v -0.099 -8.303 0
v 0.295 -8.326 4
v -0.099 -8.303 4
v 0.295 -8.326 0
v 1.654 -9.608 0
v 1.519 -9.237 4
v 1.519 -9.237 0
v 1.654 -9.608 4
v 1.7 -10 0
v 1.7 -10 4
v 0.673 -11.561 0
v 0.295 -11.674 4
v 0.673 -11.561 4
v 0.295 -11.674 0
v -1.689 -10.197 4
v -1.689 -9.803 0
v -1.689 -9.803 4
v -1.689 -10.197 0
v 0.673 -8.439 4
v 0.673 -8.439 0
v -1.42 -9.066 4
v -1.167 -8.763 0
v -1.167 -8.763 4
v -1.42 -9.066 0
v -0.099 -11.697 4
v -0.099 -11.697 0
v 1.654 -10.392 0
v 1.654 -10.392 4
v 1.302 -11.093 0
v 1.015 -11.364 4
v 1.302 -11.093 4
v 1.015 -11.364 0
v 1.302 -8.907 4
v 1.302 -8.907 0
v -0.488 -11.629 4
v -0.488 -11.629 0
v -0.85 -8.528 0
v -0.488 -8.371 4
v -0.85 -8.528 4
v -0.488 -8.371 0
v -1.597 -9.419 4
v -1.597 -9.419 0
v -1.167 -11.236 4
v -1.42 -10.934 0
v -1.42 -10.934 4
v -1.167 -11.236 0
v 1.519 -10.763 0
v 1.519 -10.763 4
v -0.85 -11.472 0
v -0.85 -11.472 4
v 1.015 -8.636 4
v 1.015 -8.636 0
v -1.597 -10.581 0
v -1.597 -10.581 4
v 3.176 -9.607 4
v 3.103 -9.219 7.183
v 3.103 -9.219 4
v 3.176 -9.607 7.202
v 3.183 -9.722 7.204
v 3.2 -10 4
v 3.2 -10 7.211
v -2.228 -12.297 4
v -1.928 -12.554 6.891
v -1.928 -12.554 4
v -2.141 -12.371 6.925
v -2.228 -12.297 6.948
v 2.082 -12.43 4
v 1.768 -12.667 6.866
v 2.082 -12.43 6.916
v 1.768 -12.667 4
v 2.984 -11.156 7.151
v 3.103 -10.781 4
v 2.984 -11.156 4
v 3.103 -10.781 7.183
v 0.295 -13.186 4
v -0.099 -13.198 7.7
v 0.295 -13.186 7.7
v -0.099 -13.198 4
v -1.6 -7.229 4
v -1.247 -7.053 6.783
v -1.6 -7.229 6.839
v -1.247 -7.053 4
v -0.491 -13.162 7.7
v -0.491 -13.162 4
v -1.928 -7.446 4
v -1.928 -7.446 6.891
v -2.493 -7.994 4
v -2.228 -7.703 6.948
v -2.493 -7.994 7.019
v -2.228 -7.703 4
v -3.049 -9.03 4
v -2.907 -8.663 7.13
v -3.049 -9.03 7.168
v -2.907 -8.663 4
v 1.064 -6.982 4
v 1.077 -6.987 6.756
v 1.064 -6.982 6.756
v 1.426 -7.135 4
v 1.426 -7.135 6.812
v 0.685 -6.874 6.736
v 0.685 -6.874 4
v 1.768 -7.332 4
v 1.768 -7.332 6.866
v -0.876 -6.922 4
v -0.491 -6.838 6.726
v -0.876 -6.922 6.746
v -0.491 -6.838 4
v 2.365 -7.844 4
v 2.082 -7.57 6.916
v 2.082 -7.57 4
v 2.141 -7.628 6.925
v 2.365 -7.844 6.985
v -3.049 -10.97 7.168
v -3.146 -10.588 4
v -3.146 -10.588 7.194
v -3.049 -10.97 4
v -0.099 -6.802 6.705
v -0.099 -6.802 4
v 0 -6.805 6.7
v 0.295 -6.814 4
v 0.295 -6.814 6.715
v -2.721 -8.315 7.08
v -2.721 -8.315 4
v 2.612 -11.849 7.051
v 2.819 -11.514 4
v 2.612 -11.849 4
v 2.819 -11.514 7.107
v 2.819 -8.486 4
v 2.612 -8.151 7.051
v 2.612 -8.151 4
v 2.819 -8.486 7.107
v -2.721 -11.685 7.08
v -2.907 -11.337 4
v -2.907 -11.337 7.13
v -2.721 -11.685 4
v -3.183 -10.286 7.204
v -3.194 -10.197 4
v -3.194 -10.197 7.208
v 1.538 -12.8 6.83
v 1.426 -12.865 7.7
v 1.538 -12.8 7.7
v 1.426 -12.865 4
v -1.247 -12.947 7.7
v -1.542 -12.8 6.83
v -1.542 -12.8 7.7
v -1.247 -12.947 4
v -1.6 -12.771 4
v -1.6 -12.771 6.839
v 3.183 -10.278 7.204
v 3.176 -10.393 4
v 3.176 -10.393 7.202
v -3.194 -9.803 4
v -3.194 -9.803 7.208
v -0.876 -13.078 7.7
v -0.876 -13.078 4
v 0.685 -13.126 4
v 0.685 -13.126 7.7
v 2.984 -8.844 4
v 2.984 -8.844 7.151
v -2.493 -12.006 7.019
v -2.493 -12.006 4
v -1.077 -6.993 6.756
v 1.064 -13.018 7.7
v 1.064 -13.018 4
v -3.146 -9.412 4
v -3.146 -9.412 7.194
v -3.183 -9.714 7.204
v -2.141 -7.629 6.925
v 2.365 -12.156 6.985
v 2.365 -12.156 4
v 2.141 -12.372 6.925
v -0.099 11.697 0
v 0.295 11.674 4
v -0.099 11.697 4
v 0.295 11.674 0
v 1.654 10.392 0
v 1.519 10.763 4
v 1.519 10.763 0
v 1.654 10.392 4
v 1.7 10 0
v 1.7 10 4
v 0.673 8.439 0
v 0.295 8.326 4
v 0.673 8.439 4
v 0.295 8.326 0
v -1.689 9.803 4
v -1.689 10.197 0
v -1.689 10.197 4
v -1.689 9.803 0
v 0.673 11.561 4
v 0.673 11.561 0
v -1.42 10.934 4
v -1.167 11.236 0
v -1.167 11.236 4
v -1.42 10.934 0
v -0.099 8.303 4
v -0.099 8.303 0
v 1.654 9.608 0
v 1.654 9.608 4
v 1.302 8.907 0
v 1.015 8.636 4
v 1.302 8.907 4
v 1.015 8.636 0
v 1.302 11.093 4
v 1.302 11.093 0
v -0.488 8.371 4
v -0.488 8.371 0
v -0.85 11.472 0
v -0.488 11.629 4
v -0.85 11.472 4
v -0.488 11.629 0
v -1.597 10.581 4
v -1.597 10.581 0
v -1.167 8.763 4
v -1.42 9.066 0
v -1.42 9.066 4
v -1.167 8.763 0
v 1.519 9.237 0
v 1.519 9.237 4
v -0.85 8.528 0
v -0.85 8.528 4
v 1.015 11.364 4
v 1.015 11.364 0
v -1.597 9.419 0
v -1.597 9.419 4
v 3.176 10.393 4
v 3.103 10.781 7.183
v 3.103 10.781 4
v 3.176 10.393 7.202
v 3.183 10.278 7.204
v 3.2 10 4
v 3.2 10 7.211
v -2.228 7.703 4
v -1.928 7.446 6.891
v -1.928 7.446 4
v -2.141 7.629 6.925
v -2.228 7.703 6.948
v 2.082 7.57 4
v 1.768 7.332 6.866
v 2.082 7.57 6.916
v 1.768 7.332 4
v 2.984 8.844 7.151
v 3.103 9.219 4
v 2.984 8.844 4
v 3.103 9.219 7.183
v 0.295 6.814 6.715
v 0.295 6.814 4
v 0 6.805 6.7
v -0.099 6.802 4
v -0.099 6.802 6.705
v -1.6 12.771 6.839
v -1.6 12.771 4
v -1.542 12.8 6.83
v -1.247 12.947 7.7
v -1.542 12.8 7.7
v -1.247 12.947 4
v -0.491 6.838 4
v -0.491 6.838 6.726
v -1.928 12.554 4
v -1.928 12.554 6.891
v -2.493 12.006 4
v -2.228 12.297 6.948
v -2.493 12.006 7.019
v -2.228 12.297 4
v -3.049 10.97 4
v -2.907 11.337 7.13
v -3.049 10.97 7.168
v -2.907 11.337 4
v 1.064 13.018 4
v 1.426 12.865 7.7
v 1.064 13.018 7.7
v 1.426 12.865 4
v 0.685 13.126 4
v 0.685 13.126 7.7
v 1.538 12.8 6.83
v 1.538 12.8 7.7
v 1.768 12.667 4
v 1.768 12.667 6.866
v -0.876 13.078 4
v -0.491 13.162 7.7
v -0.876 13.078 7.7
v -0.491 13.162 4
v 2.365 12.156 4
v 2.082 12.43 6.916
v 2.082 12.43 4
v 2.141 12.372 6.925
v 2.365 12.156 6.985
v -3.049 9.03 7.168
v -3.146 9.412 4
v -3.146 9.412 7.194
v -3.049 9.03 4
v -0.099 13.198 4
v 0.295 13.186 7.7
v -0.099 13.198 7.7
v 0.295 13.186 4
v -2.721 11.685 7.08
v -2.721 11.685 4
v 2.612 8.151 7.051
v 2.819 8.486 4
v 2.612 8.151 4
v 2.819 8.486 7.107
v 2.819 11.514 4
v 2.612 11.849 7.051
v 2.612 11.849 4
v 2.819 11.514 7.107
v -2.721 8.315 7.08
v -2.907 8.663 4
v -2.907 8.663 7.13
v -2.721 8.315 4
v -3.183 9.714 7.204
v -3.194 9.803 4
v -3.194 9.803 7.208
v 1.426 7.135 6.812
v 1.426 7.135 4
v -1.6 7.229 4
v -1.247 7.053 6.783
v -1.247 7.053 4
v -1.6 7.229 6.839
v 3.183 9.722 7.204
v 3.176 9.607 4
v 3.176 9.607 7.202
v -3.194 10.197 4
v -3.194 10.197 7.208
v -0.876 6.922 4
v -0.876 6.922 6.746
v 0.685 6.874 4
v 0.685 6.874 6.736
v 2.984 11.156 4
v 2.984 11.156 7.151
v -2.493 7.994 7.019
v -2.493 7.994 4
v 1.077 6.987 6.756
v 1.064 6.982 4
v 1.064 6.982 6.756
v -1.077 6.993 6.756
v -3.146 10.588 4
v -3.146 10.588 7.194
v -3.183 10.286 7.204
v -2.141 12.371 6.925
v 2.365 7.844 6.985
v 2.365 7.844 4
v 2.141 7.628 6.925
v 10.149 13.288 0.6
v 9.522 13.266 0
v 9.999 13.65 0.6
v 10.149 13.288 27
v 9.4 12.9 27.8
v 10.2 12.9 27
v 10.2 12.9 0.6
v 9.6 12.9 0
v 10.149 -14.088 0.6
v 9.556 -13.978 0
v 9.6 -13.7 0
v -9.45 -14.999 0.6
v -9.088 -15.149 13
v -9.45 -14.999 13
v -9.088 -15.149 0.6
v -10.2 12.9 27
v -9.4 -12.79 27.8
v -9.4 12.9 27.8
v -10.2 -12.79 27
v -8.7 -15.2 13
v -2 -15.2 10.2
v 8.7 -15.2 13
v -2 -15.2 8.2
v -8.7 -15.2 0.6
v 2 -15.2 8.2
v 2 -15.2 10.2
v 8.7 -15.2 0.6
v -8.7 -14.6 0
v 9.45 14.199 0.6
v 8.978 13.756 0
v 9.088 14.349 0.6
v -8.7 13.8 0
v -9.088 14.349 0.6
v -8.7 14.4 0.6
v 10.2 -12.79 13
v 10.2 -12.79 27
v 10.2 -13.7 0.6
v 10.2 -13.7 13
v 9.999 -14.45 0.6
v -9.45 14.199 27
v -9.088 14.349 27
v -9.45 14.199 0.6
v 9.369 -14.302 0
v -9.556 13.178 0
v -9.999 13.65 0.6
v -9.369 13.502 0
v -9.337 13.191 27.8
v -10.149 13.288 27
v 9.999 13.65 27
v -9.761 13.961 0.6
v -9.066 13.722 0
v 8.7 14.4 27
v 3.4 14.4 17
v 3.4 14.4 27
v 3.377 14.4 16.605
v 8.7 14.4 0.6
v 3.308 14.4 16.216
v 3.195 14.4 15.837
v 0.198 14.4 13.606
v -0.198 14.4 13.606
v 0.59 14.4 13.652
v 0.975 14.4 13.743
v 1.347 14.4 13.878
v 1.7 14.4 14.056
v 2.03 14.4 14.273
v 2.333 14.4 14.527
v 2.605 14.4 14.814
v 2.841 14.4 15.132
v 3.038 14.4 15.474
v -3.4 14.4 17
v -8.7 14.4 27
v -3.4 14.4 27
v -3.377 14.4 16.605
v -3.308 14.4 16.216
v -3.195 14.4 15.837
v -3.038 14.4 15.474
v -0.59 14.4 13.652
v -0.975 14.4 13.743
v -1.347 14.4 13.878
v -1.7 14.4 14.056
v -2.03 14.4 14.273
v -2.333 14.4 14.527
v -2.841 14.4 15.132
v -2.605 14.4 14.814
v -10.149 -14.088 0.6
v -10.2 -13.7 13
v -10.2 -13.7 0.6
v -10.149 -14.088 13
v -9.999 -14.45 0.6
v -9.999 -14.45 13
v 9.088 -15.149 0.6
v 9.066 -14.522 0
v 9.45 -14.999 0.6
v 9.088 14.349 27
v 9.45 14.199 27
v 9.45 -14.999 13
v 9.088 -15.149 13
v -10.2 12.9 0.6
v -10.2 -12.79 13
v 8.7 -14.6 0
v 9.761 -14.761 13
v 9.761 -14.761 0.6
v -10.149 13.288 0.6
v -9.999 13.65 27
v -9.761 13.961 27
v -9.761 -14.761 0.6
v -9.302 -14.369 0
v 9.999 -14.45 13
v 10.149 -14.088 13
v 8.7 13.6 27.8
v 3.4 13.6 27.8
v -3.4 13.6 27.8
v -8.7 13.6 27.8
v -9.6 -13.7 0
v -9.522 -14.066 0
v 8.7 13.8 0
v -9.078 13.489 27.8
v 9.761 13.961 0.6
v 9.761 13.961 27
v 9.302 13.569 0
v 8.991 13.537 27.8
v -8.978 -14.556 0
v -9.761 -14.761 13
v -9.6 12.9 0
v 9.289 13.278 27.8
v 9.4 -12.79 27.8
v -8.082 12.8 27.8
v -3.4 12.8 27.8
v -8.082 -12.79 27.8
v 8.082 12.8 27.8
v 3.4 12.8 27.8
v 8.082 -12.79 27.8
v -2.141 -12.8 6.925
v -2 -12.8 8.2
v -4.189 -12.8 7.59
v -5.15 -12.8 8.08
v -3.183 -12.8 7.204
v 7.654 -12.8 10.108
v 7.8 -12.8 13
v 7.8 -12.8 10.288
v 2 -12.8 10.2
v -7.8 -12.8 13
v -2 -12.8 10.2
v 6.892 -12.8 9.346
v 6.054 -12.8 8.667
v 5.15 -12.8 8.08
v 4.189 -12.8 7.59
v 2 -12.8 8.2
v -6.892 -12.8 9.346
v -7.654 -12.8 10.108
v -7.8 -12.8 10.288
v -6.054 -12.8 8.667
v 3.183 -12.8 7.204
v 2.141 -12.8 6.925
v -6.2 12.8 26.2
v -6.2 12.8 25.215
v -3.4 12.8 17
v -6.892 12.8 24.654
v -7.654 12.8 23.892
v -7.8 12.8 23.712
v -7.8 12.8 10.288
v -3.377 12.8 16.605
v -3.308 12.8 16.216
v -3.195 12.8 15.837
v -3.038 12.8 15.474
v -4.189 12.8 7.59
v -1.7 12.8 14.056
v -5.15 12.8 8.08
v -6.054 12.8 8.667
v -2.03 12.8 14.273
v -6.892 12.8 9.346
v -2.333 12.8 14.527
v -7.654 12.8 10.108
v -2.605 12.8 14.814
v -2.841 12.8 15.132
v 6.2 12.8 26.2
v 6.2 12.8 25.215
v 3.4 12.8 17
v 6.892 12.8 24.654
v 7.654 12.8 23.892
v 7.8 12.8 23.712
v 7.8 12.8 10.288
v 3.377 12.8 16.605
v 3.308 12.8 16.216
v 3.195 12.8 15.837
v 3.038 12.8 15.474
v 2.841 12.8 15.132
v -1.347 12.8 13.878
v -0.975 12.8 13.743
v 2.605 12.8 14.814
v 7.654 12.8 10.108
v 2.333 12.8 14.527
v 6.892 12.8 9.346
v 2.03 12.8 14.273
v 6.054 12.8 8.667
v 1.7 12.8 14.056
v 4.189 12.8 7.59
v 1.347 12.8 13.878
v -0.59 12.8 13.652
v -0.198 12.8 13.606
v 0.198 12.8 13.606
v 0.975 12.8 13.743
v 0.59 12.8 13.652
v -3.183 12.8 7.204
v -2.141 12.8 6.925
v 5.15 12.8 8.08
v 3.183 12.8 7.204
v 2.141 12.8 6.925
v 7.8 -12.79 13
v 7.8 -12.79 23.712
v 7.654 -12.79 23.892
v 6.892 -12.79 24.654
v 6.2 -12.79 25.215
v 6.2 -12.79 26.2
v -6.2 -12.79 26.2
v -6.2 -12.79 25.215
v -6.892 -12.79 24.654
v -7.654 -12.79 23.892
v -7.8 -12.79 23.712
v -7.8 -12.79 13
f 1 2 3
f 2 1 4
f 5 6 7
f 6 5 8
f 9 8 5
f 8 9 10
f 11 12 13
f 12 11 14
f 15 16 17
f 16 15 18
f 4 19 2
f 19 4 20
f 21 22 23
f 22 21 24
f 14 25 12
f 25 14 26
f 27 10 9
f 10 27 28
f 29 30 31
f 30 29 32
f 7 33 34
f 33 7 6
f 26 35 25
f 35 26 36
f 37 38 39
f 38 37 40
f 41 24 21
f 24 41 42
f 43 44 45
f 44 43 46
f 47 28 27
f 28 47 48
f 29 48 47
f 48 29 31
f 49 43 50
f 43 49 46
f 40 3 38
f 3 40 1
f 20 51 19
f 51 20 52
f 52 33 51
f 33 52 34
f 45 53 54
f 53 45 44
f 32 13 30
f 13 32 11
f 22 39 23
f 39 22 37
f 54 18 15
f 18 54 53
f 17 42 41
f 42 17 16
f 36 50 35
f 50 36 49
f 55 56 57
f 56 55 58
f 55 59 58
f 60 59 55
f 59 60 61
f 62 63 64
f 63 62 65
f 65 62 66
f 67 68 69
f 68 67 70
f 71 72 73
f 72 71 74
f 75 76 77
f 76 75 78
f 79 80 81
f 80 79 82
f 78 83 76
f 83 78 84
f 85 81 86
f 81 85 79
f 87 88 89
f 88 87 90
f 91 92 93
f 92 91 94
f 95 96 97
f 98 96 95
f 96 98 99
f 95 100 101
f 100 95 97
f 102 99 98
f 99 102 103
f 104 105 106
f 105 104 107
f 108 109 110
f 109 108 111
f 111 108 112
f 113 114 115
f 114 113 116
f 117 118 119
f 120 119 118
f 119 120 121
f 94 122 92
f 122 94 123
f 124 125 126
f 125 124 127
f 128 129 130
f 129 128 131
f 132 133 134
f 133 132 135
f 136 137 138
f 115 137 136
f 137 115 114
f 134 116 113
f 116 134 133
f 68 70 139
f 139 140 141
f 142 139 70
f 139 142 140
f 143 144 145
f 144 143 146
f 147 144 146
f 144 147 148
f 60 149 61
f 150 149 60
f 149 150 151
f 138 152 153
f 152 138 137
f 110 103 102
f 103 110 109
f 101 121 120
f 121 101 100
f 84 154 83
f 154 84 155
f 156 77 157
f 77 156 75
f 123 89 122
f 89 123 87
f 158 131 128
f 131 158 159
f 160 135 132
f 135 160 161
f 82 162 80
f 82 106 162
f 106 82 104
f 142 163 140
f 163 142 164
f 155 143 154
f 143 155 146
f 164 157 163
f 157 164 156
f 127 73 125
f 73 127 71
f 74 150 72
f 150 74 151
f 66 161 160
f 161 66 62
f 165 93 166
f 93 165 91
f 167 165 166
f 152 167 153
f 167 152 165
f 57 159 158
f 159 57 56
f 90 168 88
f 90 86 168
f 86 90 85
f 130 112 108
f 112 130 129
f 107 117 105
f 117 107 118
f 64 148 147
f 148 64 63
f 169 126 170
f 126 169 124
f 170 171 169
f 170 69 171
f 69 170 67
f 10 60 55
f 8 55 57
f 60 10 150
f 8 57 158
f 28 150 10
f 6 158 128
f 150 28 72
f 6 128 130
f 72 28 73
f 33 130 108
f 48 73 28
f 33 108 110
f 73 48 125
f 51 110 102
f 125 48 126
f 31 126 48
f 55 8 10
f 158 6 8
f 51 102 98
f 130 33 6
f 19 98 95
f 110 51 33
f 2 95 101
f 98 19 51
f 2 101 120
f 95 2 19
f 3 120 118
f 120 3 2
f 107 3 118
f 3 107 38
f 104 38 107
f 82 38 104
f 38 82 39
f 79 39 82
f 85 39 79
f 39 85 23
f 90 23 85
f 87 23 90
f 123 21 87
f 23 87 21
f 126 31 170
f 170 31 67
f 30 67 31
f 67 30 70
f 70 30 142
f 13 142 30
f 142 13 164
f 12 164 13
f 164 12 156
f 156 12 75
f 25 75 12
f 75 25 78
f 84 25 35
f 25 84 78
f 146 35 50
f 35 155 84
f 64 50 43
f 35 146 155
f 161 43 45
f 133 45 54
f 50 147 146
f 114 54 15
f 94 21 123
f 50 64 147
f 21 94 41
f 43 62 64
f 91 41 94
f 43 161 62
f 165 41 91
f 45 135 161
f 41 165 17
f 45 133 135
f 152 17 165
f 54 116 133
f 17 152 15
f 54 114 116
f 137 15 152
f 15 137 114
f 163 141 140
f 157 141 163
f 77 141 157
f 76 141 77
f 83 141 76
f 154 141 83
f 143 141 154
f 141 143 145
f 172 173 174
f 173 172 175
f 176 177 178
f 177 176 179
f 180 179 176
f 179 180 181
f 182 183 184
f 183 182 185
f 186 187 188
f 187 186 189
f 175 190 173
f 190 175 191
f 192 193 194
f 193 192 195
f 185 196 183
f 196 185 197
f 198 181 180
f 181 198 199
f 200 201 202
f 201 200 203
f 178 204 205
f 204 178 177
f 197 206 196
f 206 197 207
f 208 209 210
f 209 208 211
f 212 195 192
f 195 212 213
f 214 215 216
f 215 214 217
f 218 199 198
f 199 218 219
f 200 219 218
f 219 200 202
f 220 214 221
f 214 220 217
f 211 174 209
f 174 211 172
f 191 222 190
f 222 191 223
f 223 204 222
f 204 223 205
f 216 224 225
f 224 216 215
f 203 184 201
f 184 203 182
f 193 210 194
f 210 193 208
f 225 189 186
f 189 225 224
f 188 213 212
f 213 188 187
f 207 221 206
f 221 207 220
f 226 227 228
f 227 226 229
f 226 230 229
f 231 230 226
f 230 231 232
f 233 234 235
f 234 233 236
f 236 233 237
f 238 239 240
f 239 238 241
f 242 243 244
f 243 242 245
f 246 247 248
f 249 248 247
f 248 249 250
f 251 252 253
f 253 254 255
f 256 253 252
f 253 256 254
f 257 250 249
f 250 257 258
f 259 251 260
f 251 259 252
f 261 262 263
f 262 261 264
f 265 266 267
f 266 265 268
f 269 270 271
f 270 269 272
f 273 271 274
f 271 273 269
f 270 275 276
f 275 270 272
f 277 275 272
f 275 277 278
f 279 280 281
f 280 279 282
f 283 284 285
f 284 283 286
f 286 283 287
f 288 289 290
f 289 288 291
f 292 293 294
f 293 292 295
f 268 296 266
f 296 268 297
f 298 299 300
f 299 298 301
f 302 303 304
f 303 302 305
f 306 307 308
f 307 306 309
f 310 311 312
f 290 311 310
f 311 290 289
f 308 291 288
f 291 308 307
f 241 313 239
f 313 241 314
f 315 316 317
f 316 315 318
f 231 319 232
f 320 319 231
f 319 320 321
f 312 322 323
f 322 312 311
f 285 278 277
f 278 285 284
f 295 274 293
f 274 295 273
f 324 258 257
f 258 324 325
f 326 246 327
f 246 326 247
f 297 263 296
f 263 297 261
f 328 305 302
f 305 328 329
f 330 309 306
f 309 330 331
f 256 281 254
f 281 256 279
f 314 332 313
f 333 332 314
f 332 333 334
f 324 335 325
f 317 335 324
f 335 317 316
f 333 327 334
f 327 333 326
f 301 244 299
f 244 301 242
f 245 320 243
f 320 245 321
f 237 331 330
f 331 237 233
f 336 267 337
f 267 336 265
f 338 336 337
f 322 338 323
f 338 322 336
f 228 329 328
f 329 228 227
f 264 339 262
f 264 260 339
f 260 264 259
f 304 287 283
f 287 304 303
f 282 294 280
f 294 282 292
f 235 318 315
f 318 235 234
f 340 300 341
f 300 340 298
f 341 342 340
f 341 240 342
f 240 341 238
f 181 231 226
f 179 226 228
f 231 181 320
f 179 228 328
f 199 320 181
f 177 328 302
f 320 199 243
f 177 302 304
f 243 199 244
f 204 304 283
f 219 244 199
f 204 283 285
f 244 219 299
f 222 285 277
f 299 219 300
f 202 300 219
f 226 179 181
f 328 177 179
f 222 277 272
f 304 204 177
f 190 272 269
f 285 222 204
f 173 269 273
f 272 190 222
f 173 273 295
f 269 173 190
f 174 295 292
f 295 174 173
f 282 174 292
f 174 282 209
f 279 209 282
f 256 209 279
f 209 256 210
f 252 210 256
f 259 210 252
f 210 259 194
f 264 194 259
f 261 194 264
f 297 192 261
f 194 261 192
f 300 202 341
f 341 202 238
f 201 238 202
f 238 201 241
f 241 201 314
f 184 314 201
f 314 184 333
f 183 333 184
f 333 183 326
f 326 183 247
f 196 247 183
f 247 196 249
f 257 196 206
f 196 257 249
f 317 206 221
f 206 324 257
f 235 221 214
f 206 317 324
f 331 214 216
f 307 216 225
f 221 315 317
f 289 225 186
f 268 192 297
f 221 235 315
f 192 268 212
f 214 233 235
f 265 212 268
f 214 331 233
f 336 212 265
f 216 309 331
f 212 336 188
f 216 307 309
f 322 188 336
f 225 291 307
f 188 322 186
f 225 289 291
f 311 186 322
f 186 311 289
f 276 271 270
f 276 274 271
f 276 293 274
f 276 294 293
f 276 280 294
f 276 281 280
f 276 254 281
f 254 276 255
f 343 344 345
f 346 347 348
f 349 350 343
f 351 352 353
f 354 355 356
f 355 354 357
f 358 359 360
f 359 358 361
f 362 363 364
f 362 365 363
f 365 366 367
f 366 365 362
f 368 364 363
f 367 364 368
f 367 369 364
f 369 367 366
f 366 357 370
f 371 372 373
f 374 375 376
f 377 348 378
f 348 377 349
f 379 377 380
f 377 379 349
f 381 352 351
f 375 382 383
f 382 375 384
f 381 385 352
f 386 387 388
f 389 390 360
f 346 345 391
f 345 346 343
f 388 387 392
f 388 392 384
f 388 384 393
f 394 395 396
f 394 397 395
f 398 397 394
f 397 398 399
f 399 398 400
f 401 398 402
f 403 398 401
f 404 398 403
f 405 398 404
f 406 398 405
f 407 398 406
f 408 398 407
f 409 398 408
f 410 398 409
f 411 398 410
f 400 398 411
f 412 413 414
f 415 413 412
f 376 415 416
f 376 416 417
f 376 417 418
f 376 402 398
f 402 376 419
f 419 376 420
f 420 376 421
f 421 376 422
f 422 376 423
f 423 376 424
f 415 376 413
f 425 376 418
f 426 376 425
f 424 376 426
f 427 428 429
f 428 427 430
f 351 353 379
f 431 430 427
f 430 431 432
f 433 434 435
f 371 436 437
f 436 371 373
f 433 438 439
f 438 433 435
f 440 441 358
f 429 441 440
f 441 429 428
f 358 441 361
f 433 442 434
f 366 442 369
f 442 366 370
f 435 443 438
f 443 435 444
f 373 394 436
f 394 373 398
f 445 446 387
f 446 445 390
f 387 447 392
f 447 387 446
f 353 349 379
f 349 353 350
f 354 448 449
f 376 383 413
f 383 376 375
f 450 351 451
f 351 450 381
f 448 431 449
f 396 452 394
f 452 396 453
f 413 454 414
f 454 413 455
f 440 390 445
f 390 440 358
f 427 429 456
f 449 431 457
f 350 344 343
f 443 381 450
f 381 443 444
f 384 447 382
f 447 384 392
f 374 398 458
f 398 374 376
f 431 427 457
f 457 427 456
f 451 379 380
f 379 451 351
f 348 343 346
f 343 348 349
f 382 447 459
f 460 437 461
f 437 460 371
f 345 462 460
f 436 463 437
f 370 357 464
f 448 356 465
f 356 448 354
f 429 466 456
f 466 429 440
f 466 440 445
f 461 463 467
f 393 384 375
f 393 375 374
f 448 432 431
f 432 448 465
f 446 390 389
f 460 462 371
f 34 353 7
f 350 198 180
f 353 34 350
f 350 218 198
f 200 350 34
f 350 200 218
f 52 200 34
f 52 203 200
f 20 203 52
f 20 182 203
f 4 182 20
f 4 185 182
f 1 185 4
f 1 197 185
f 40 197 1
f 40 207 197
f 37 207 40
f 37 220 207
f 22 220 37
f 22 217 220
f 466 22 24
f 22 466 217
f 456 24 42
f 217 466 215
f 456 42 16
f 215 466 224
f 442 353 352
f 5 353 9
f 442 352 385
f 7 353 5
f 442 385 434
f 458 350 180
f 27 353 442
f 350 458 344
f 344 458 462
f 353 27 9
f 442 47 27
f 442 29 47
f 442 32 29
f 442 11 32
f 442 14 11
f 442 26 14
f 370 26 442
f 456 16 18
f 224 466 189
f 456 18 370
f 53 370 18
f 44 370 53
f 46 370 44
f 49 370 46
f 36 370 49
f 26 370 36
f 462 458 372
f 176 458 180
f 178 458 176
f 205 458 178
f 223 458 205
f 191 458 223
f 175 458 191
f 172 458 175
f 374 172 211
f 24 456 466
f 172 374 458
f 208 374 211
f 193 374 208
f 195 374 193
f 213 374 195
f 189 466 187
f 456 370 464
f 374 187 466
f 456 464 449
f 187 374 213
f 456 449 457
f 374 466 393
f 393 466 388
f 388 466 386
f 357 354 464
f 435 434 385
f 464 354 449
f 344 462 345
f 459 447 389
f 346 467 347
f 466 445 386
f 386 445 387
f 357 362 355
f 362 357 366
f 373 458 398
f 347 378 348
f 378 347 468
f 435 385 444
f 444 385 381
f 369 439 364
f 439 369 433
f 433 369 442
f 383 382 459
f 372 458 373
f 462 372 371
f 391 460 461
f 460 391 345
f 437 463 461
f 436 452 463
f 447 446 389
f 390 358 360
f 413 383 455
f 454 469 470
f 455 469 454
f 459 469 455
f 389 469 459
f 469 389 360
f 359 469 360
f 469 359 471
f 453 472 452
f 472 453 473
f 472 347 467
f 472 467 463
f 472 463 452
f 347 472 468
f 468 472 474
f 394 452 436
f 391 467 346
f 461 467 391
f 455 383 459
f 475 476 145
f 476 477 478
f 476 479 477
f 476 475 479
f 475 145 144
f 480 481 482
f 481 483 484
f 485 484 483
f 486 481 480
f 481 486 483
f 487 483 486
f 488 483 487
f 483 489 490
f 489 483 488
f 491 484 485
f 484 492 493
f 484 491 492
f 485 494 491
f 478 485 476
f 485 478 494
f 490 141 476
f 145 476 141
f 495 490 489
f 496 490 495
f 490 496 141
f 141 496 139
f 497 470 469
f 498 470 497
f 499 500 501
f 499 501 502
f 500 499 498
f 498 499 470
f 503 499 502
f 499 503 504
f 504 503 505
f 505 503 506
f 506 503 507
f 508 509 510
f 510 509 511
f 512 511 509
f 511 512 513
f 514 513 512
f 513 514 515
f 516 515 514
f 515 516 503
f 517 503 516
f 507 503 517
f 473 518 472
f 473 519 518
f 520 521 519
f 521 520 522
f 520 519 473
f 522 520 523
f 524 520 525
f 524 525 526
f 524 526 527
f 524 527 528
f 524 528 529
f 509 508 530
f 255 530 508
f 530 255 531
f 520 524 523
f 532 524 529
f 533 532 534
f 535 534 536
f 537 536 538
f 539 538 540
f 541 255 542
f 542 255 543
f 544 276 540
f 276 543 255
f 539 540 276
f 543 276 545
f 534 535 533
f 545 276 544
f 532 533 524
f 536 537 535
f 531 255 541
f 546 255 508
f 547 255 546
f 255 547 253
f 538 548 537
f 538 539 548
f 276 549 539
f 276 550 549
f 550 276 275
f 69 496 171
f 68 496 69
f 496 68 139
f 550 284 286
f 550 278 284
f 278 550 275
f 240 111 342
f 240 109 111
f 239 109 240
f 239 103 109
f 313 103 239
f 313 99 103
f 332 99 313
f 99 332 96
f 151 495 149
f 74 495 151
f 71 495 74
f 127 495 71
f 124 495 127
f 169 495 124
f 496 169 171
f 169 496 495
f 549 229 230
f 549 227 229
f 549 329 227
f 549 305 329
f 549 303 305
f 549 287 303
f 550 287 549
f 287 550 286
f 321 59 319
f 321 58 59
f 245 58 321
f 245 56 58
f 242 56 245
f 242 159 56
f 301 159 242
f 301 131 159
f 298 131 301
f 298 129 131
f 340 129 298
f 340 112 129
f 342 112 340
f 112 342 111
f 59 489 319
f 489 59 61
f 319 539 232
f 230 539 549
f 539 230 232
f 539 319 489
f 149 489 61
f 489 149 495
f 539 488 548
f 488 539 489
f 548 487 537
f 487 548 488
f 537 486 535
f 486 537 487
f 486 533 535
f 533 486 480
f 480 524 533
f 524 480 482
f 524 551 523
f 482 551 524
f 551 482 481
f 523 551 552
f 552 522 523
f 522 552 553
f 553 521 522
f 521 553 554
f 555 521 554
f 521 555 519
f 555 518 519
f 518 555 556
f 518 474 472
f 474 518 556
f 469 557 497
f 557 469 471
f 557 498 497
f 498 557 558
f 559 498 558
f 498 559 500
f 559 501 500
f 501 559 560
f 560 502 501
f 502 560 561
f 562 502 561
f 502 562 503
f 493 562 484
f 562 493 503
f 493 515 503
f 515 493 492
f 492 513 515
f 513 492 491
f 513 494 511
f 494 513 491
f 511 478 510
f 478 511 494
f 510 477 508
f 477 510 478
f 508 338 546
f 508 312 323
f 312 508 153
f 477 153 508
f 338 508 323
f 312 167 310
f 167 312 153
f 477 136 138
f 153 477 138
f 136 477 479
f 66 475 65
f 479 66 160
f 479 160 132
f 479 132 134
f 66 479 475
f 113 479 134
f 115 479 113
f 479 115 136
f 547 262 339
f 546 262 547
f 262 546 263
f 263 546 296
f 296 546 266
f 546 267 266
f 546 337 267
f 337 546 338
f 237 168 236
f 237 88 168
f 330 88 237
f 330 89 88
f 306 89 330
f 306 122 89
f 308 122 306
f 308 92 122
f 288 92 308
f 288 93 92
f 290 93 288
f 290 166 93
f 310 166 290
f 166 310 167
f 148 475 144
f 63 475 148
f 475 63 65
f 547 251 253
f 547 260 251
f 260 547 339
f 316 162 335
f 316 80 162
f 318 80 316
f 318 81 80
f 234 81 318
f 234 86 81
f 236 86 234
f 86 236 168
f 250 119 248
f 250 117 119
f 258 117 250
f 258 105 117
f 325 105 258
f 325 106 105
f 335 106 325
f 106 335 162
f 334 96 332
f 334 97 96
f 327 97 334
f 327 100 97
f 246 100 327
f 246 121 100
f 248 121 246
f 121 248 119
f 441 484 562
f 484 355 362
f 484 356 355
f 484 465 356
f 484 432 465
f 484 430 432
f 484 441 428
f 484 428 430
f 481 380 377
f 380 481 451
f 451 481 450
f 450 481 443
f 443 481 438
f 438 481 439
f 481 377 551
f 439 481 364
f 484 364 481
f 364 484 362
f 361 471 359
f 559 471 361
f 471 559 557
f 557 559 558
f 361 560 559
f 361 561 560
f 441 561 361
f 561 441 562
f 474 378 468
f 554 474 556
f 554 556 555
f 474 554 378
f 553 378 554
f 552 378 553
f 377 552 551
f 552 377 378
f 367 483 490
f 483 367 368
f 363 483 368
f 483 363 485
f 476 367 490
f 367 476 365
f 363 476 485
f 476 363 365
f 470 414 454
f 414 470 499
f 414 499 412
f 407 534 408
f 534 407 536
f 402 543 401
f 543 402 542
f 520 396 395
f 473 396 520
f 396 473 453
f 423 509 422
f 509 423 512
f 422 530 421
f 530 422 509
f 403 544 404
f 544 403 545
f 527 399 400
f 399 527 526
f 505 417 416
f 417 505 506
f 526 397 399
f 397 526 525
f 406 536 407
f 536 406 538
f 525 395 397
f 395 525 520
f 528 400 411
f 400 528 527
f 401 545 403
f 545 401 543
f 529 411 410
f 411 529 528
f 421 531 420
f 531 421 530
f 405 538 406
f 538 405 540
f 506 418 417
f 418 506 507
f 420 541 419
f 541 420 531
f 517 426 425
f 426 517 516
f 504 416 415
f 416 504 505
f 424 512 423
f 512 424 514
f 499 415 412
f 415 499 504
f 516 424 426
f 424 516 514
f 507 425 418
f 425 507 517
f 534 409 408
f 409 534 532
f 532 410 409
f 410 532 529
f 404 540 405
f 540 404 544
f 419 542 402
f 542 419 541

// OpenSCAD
// file: ../stem_core.scad
// =====================================================================
//  stem_core.scad — shared geometry helpers for every STEM_KIT part.
// =====================================================================
include <../PARAMETERS/config.scad>
// =====================================================================

// ---------- rounded / chamfered prisms --------------------------------

// Rounded rectangle (2D), centred.
module rrect(size, r) {
    rr = min(r, min(size[0], size[1]) / 2 - 0.01);
    offset(r = rr) square([size[0] - 2 * rr, size[1] - 2 * rr], center = true);
}

// Box with rounded vertical edges, chamfered bottom edge (elephant-foot
// relief) and rounded-ish (chamfered) top edge. Sits on z = 0, centred XY.
module rbox(size, r = 2, top = edge_r, bottom = chamfer) {
    h = size[2];
    hull() {
        linear_extrude(0.01) rrect([size[0] - 2 * bottom, size[1] - 2 * bottom], max(r - bottom, 0.1));
        translate([0, 0, bottom]) linear_extrude(h - bottom - top) rrect([size[0], size[1]], r);
        translate([0, 0, h - 0.01]) linear_extrude(0.01) rrect([size[0] - 2 * top, size[1] - 2 * top], max(r - top, 0.1));
    }
}

// Cylinder with chamfered/rounded top and bottom edges (safe hubs, knobs).
module rcyl(d, h, top = edge_r, bottom = chamfer) {
    rotate_extrude() polygon([
        [0, 0], [d / 2 - bottom, 0], [d / 2, bottom],
        [d / 2, h - top], [d / 2 - top, h], [0, h]
    ]);
}

// Stadium (slot / rounded bar) 2D between two points on the X axis.
module stadium2d(len, w) {
    hull() { circle(d = w); translate([len, 0]) circle(d = w); }
}

// ---------- holes ------------------------------------------------------

// Vertical through hole with small top/bottom chamfers.
module vhole(d = grid_hole_d, h = 50, ch = 0.4) {
    translate([0, 0, -h / 2]) cylinder(d = d, h = h);
}

// Horizontal hole along +Y, printable without supports (teardrop tip up).
module teardrop_y(d, len, center = true) {
    translate([0, center ? -len / 2 : 0, 0]) rotate([-90, 0, 0])
        linear_extrude(len) teardrop2d(d);
}
module teardrop_x(d, len, center = true) {
    translate([center ? -len / 2 : 0, 0, 0]) rotate([0, 90, 0]) rotate([0, 0, -90])
        linear_extrude(len) teardrop2d(d);
}
// 2D teardrop: circle + 45° roof pointing "up" in the final part (+Z).
// After rotate([-90,0,0]) local +Y becomes -Z, so the roof points to -Y here.
module teardrop2d(d) {
    r = d / 2;
    union() {
        circle(d = d);
        polygon([[-r * sqrt(2) / 2, -r * sqrt(2) / 2], [0, -r * sqrt(2)], [r * sqrt(2) / 2, -r * sqrt(2) / 2]]);
    }
}

// Hex nut pocket (flat sides parallel to X), opening at z = 0 going +Z.
module nut_pocket(depth = nut_pocket_depth, af = nut_pocket_af) {
    cylinder(d = af / cos(30), h = depth, $fn = 6);
}

// Side-entry nut slot: nut plane is XY, slot opens toward +dir (X).
// Centred on the screw axis (Z), slot height nut_slot_t, runs out `len`.
module nut_slot_x(len = 10, af = nut_pocket_af, t = nut_slot_t) {
    translate([0, 0, -t / 2]) hull() {
        cylinder(d = af / cos(30), h = t, $fn = 6);
        translate([len, 0, 0]) cylinder(d = af / cos(30), h = t, $fn = 6);
    }
}

// Counterbored clearance hole from top surface at height `top` downward.
module cbore(top, depth, d = counterbore_d) {
    translate([0, 0, top - depth]) cylinder(d = d, h = depth + 20);
    translate([0, 0, -20]) cylinder(d = grid_hole_d, h = top + 40);
}

// Grid of vertical holes: nx x ny, pitch grid_pitch, first hole centred
// at `origin` (XY). Used by every plate.
module grid_holes(nx, ny, origin = [0, 0], h = 100, d = grid_hole_d) {
    for (i = [0 : nx - 1], j = [0 : ny - 1])
        translate([origin[0] + i * grid_pitch, origin[1] + j * grid_pitch, 0]) vhole(d, h);
}

// Slot (for adjustable mounting) along X, length = travel.
module slot_x(travel, d = grid_hole_d, h = 100) {
    translate([-travel / 2, 0, -h / 2]) linear_extrude(h) stadium2d(travel, d);
}

// ---------- shaft bores ------------------------------------------------

// 2D bore profile: round, or D if shaft_flat > 0.
module bore2d(d) {
    if (shaft_flat > 0)
        intersection() { circle(d = d); translate([-d, -d / 2]) square([2 * d, d - shaft_flat + (d - shaft_diameter) / 2]); }
    else circle(d = d);
}

// Standard HUB: cylinder hub_d x hub_h standing on z = z0, with bore,
// radial M3 set screw at mid height and a captive-nut slot from the top.
// Call inside difference() for the cut-outs: hub_body()/hub_cuts().
module hub_body(z0, d = hub_d, h = hub_h) {
    translate([0, 0, z0]) rcyl(d, h, top = 0.8, bottom = 0);
}
module hub_cuts(z0, total_h, d = hub_d, h = hub_h, bore = shaft_fixed_bore, set_screw = true, screw_angle = 0) {
    // bore through everything
    translate([0, 0, -1]) linear_extrude(total_h + 2) bore2d(bore);
    // entry chamfer on bore
    translate([0, 0, total_h - 0.6]) cylinder(d1 = bore, d2 = bore + 1.2, h = 0.61);
    translate([0, 0, -0.01]) cylinder(d1 = bore + 1.2, d2 = bore, h = 0.6);
    if (set_screw) rotate([0, 0, screw_angle]) {
        zs = z0 + h / 2;
        // radial screw hole (teardrop, prints without support)
        translate([0, 0, zs]) teardrop_x(screw_clear_d, d, center = false);
        // captive nut slot, entered from the hub top face
        nr = bore / 2 + (d / 2 - bore / 2) / 2;       // radial position of nut
        translate([nr - nut_slot_t / 2, -nut_pocket_af / 2, zs - nut_pocket_af / cos(30) / 2 - 0.1])
            cube([nut_slot_t, nut_pocket_af, total_h + 10]);   // open to the hub top face
    }
}

// ---------- labels -----------------------------------------------------

// Engrave text into a top surface at height z (depth 0.6 = 3 layers).
module engrave(txt, size = 5, z = 0, depth = 0.6, halign = "center") {
    translate([0, 0, z - depth]) linear_extrude(depth + 1)
        text(txt, size = size, font = "Liberation Sans:style=Bold", halign = halign, valign = "center");
}

// ---------- misc -------------------------------------------------------

function grid_snap(v) = ceil(v / grid_pitch) * grid_pitch;
// file: ../../PARAMETERS/config.scad
// =====================================================================
//  STEM_KIT — CENTRAL PARAMETER FILE  ("ForgeGrid" mechanical standard)
// ---------------------------------------------------------------------
//  Every part in the library includes this file. Change a value here,
//  run `python3 tools/build.py`, and the whole library regenerates.
//  All dimensions in millimetres.
// =====================================================================

// ---------------------------------------------------------------------
// 1. PRINTER / PROCESS
// ---------------------------------------------------------------------
nozzle          = 0.4;
layer_height    = 0.2;
tolerance       = 0.2;    // sliding clearance per side (tune with STEM_TOLERANCE_TEST)
press_allow     = 0.05;   // extra for press fits (bores that should grip)
min_wall        = 1.6;    // never go below this
wall_thickness  = 2.4;    // preferred wall (6 perimeters @ 0.4)
edge_r          = 1.0;    // rounding of exposed edges (child safety)
chamfer         = 0.6;    // bottom-edge chamfer (elephant-foot relief)

$fa = 6;                  // facet angle
$fs = 0.4;                // facet size

// ---------------------------------------------------------------------
// 2. GRID  (the heart of the ecosystem)
// ---------------------------------------------------------------------
//  Holes sit on a 10 mm lattice, 5 mm in from every plate edge, so
//  plates placed side by side keep one continuous lattice.
grid_pitch            = 10;
plate_size            = 100;   // universal base plate (square)
plate_thickness       = 6;     // base plates, rails, chassis
foot_thickness        = 4;     // flange / foot of every mount
//  => standard joint: 4 mm foot + 6 mm plate = M3 x 10 screw, nut in
//     the hex pocket under the plate. One screw length does 90 % of joints.

// ---------------------------------------------------------------------
// 3. FASTENERS (M3 everywhere: one screwdriver, one nut)
// ---------------------------------------------------------------------
screw_size            = 3;
screw_clear_d         = 3.4;   // clearance hole (also the grid hole)
grid_hole_d           = screw_clear_d;
screw_tap_d           = 2.6;   // hole a screw self-taps into
screw_head_d          = 5.7;   // ISO 7380 BUTTON head = kit standard (low, rounded, child-safe)
screw_head_h          = 1.65;
counterbore_d         = 6.4;
nut_af                = 5.5;   // M3 nut across flats
nut_thick             = 2.4;
nut_pocket_af         = nut_af + 0.35;
nut_pocket_depth      = 3.0;   // pocket under plates (nut sits flush)
nut_slot_t            = nut_thick + 0.4;  // side-entry slot thickness
set_screw_len         = 6;     // M3 x 6 grub screw for hubs

// ---------------------------------------------------------------------
// 4. SHAFTS
// ---------------------------------------------------------------------
//  Default: 3 mm steel rod (silver steel / stainless). Printed shafts
//  are provided for light-duty use. Alternative systems: set
//  shaft_diameter = 4 or 5 and rebuild.
shaft_diameter        = 3;
shaft_flat            = 0;     // >0 : D-shaft, flat depth (e.g. 0.5)
shaft_fixed_bore      = shaft_diameter + 0.15;  // hub bore (set-screw locked)
shaft_free_bore       = shaft_diameter + 0.4;   // free-spinning bore / bushing
shaft_lengths         = [40, 60, 80, 100, 120];

//  Horizontal shafts: all pillow blocks, motor mounts and axle mounts
//  put their axis at this height above the surface they are bolted to,
//  so any two of them on the grid are automatically coaxial/parallel.
axis_height           = 17;
axis_height_high      = 37;    // = axis_height + 2 pitches (pulleys, big wheels)

// ---------------------------------------------------------------------
// 5. BEARINGS
// ---------------------------------------------------------------------
bearing_size          = [5, 16, 5];   // 625 : bore, OD, width (default housing)
bearing_small         = [3, 10, 4];   // 623 : fits 3 mm shafts via adapter ring
bearing_pocket_d      = bearing_size[1] + 0.15;

// ---------------------------------------------------------------------
// 6. GEARS
// ---------------------------------------------------------------------
//  Module 2 + tooth counts that are multiples of 10  =>  centre distance
//  = (z1+z2) mm is ALWAYS a multiple of 10  =>  ANY two gears mesh when
//  their shafts sit in grid holes. (3-4-5 diagonals also work: 50 mm.)
gear_module           = 2;
gear_pressure_angle   = 20;
gear_width            = 6;
gear_backlash         = 0.30;  // total circular backlash per mesh
gear_clearance_k      = 0.25;  // root clearance = k * module
gear_teeth_set        = [10, 20, 30, 40];
//  Gearbox frame: two frame plates, outer faces 60 mm apart (on grid),
//  48 mm gap = three gear levels (A, M, B).
frame_gap             = 48;
hub_d                 = 14;
hub_h                 = 7;

// ---------------------------------------------------------------------
// 7. WHEELS / PULLEYS
// ---------------------------------------------------------------------
wheel_diameter        = 60;
wheel_width           = 10;
axle_diameter         = shaft_diameter;
oring_cs              = 3.0;    // O-ring cross-section used as tyre / belt
belt_cs               = 2.5;    // O-ring / round-belt cord for pulleys
pulley_sizes          = [20, 40, 60];  // effective (belt-line) diameters

// ---------------------------------------------------------------------
// 8. MOTORS (130-size toy / solar motor is the default)
// ---------------------------------------------------------------------
motor_size            = [20.2, 15.2, 25.2]; // body dia, across-flats, length
motor_d               = motor_size[0];
motor_flat            = motor_size[1];
motor_len             = motor_size[2];
motor_boss_d          = 6.2;
motor_boss_h          = 1.6;
motor_shaft_d         = 2.0;
motor_shaft_len       = 8.5;   // beyond boss
motor_shaft_bore      = 1.9;   // press fit onto 2 mm motor shaft

// ---------------------------------------------------------------------
// 9. SOLAR PANEL (bought, not printed) — frame is parametric
// ---------------------------------------------------------------------
solar_panel_size      = [110, 69, 3.0];  // 5 V 1 W epoxy panel (common)
solar_panel_clear     = 0.6;

// ---------------------------------------------------------------------
// 10. ELECTRONICS
// ---------------------------------------------------------------------
mounting_hole_spacing = grid_pitch;   // everything bolts to the grid
electronics_slot_w    = screw_clear_d;
led_hole_d            = 5.1;
buzzer_hole_d         = 12.2;

// ---------------------------------------------------------------------
// 11. SAFETY LIMITS (checked by tools/qc.py)
// ---------------------------------------------------------------------
max_part_voltage      = 12;    // nothing in this kit uses more
min_rim_thickness     = 2.0;   // blades/links: no edge thinner than this
finger_gap_max        = 6;     // guard openings smaller than a child's finger
// main file
// =====================================================================
//  PART: motor mount (130-size DC motor, snap-in cradle) — COMMON/mounts
//  Motor axis along +Y at `axis_height`, over a grid line, so a motor
//  pinion meshes with any gear held by a bearing/axle mount on the grid.
//  The motor snaps in from above (flexing side walls), the flats stop it
//  turning, front/rear walls stop it sliding. Screws: M3 x 10 at (0, ±10)
//  — fit them BEFORE snapping the motor in.
//  slotted = true: holes become ±4 mm slots across the axis (used by the
//  solar vehicle mount to explore too-tight / too-loose gear mesh).
//  Print: standing on its floor. No supports.
// =====================================================================
include <../../PARAMETERS/config.scad>
use <../stem_core.scad>

slotted = false;
motor_mount(slotted);

// motor cross-section (flats vertical), grown by c
module motor_section(c = 0) {
    intersection() {
        circle(r = motor_d / 2 + c);
        square([motor_flat + 2 * c, motor_d + 4], center = true);
    }
}

function mm_front() = motor_len / 2 + tolerance;            // front wall inner face (Y)
function mm_front_outer() = mm_front() + min_wall;           // boss side face

module motor_mount(slotted = false, travel = 8) {
    h   = axis_height;
    c   = tolerance;
    wi  = motor_flat / 2 + c;                  // inner half width
    wo  = wi + wall_thickness;                 // outer half width
    yf  = mm_front();                          // front wall inner
    yr  = -yf;                                 // rear wall inner
    top = h + motor_d / 2 - 1.5 + 2.2;         // cradle top
    lip = 6.2;                                  // lip half-opening
    zfl = h - motor_d / 2 - c;                  // floor top (under motor)
    difference() {
        union() {
            // body: walls + floor, from rear wall to front wall
            translate([0, (yf + min_wall + yr - wall_thickness) / 2, 0])
                rbox([2 * wo, yf + min_wall - yr + wall_thickness, top], r = 1.5, top = 0.8);
        }
        // motor pocket + snap opening, through the full length between walls
        translate([0, yr, 0]) rotate([-90, 0, 0]) mirror([0, 1, 0]) linear_extrude(yf - yr)
            union() {
                translate([0, h]) motor_section(c);
                polygon([[-lip, h + 4], [lip, h + 4], [lip, top - 1.6], [lip + 2, top + 0.1],
                         [-lip - 2, top + 0.1], [-lip, top - 1.6]]);
            }
        // rear wall: keep only a low stop (below the axis) + zip-tie slot
        translate([-wo - 1, yr - wall_thickness - 1, h - 4]) cube([2 * wo + 2, wall_thickness + 1.01, top]);
        translate([-2, yr - wall_thickness - 1, zfl + 1.5]) cube([4, wall_thickness + 2, 2]);
        // front wall: U slot for the motor boss and shaft
        translate([0, yf - 1, h]) rotate([-90, 0, 0]) linear_extrude(min_wall + 2)
            hull() { circle(d = motor_boss_d + 0.6); translate([-(motor_boss_d + 0.6) / 2, -top]) square([motor_boss_d + 0.6, 1]); }
        // mounting holes / slots with counterbores under the motor
        for (y = [-grid_pitch, grid_pitch]) translate([0, y, 0]) {
            if (slotted) {
                slot_x(travel, grid_hole_d, 40);
                translate([0, 0, foot_thickness]) hull() for (x = [-travel / 2, travel / 2])
                    translate([x, 0, 0]) cylinder(d = counterbore_d, h = zfl - foot_thickness + 1);
            } else {
                vhole(grid_hole_d, 40);
                translate([0, 0, foot_thickness]) cylinder(d = counterbore_d, h = zfl - foot_thickness + 1);
            }
        }
        if (slotted) translate([0, yf + min_wall, top - 5]) rotate([-90, 0, 0])
            translate([0, 0, -0.5]) linear_extrude(1) text("V", size = 4, font = "Liberation Sans:style=Bold", halign = "center", valign = "center");
    }
}
